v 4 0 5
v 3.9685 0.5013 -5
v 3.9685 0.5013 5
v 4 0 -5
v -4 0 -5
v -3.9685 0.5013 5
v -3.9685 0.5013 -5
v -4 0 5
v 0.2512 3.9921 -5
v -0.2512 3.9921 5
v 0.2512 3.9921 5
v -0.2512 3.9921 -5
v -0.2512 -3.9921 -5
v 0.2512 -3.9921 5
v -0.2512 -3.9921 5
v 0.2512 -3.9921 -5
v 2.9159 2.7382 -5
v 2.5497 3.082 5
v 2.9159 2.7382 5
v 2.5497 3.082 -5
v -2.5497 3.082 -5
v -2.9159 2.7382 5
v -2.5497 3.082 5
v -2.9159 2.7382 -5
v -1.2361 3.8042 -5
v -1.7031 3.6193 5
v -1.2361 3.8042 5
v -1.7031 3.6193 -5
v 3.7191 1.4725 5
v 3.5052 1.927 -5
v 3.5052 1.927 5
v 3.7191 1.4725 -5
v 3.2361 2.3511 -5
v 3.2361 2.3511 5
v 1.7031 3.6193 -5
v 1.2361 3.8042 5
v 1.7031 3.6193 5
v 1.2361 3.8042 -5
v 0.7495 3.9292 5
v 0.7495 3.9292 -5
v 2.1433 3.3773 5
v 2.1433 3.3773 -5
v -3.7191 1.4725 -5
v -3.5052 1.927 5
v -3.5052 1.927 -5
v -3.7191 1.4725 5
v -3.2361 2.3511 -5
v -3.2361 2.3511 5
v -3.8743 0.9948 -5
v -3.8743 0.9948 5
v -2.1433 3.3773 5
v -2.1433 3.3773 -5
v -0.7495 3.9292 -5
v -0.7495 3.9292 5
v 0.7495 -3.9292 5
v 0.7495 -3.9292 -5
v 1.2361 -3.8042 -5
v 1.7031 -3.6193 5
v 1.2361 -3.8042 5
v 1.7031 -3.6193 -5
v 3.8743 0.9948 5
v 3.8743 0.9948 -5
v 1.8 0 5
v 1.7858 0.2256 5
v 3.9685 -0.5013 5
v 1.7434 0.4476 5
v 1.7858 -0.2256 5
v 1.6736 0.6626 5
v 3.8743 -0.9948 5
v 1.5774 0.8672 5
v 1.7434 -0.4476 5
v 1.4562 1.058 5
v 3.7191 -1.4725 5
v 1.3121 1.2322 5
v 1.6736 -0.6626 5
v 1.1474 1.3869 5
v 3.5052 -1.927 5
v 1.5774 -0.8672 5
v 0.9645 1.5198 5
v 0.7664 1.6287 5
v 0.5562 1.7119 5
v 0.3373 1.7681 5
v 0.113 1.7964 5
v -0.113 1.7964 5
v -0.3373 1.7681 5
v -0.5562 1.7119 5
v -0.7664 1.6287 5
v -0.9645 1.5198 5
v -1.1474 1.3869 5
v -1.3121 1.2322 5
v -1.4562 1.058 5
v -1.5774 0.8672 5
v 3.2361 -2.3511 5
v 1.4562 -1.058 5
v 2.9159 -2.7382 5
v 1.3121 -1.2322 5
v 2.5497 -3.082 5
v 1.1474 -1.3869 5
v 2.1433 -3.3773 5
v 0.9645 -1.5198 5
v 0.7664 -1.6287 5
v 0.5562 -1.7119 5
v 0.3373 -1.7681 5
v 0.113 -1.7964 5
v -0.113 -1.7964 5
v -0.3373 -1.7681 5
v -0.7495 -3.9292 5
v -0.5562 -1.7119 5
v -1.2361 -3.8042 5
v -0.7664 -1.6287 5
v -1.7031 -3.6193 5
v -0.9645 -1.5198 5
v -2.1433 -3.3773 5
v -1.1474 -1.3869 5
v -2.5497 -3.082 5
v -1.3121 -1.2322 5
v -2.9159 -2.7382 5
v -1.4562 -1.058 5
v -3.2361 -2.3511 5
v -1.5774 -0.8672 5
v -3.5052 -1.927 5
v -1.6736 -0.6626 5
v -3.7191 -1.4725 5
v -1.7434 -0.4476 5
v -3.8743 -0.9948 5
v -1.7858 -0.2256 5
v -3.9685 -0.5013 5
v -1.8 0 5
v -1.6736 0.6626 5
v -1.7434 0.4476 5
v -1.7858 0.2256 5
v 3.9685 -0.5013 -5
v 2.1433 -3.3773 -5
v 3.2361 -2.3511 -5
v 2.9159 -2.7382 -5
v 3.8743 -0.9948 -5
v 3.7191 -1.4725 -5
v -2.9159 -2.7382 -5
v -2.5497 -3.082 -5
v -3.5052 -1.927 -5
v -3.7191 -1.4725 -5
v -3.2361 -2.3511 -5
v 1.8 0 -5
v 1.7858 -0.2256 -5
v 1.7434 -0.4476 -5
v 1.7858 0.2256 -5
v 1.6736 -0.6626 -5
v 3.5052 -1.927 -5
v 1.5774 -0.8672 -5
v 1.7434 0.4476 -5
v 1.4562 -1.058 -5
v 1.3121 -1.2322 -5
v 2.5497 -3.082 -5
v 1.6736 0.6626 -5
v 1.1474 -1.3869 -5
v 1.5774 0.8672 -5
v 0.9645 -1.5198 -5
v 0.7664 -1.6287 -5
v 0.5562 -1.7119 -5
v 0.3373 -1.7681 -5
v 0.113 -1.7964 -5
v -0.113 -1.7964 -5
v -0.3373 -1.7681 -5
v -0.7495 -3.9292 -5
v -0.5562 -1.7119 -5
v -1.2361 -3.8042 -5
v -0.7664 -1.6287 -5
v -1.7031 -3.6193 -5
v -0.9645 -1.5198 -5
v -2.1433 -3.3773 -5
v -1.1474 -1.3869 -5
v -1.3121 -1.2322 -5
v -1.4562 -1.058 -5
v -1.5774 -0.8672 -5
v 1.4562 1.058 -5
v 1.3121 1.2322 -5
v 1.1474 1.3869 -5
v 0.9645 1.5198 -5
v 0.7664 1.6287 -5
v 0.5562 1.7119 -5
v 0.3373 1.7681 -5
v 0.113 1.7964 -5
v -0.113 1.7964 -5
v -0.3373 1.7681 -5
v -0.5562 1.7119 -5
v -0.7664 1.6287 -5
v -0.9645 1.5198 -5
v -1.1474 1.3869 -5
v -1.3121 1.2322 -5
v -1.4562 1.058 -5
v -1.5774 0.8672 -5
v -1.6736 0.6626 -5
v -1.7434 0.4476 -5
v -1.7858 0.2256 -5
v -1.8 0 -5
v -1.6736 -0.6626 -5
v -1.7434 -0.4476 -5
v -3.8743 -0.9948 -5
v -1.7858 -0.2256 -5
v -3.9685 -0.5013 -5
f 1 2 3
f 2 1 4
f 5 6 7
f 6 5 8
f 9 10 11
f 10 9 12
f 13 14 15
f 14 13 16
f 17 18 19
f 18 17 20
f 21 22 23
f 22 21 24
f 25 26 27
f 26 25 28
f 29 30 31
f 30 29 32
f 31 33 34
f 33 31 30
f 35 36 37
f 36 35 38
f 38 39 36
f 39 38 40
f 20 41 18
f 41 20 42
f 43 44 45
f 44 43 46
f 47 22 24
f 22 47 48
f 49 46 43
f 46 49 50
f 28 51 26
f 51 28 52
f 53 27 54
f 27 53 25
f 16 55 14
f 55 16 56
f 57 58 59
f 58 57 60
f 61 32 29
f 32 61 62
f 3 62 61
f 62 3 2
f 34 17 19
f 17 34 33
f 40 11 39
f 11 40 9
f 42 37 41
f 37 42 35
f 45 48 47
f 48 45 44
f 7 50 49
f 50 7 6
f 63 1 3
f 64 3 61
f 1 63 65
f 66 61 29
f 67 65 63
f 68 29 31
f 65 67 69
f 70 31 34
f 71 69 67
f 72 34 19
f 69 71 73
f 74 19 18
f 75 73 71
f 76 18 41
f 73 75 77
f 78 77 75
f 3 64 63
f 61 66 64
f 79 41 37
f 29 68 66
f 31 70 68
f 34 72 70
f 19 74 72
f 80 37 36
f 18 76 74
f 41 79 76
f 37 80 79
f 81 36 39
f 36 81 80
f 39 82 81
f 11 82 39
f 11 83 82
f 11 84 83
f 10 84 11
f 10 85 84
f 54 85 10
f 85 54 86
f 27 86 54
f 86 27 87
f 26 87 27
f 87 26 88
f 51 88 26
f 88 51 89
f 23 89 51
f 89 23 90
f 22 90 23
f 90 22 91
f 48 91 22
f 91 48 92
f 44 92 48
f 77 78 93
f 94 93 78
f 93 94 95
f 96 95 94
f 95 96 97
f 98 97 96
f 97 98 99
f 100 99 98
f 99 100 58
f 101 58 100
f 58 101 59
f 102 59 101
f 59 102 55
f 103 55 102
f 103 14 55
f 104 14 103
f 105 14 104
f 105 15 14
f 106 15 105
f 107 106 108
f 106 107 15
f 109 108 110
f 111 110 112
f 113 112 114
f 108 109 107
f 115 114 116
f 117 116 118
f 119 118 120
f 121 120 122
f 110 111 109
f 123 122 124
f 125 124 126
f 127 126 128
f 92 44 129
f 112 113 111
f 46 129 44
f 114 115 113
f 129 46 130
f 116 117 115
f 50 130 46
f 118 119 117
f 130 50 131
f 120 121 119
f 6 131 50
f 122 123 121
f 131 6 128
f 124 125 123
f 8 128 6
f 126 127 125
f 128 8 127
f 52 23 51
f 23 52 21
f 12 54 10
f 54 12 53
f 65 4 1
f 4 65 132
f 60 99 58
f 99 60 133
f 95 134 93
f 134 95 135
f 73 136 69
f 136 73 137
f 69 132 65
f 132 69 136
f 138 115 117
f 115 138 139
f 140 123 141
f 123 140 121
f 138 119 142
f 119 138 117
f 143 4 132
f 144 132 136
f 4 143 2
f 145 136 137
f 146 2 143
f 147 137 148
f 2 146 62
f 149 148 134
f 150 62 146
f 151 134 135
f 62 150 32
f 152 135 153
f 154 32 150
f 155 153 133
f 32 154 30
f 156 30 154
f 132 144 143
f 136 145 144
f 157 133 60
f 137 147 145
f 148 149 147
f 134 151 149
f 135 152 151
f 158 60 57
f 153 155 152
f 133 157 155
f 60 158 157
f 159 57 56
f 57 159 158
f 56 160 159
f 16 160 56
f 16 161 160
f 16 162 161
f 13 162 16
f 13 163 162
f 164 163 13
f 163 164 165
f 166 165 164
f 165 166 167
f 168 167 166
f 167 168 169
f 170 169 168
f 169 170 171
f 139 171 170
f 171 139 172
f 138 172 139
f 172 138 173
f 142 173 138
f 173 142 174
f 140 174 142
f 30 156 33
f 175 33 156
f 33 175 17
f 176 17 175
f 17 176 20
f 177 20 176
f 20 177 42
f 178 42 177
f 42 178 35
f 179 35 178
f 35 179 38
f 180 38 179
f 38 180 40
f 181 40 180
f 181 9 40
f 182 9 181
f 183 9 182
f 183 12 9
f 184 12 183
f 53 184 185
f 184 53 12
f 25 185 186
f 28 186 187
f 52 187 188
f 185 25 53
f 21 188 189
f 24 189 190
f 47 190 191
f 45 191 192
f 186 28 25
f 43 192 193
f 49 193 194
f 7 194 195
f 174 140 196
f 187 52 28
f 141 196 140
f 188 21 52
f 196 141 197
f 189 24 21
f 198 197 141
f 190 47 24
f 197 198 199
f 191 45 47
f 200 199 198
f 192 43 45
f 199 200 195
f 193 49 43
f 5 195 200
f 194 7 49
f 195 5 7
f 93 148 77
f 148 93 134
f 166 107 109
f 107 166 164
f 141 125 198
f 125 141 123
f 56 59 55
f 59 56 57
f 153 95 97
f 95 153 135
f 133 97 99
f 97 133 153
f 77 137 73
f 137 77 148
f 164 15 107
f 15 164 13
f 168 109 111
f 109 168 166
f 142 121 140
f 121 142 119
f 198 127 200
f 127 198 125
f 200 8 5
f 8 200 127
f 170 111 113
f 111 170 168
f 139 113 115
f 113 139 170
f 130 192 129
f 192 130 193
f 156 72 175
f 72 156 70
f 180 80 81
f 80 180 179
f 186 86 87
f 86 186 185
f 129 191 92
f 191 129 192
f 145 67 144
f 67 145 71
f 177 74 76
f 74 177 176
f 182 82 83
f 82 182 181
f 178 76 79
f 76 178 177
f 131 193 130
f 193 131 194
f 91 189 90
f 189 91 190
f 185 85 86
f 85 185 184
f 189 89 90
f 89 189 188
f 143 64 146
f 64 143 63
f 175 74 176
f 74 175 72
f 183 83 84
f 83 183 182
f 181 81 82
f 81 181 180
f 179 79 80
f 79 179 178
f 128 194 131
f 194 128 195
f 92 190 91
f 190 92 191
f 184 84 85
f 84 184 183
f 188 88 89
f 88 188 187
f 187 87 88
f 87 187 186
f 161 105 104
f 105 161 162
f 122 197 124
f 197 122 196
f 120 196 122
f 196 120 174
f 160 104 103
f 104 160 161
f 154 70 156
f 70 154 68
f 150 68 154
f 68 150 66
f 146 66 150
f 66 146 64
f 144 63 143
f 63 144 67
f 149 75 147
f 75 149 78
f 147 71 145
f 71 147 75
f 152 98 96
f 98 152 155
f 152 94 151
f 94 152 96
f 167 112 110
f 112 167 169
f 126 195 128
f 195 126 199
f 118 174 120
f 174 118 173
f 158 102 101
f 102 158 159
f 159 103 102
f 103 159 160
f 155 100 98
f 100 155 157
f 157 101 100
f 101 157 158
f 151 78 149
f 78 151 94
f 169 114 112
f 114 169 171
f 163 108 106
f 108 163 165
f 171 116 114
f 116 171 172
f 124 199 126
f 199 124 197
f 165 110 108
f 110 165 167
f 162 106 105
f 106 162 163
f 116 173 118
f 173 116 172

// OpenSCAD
$fn = 50;


difference() {
	union() {
		translate(v = [0, 0, -5.0000000000]) {
			cylinder(h = 10, r = 4.0000000000);
		}
	}
	union() {
		translate(v = [0, 0, -100.0000000000]) {
			cylinder(h = 200, r = 1.8000000000);
		}
	}
}
